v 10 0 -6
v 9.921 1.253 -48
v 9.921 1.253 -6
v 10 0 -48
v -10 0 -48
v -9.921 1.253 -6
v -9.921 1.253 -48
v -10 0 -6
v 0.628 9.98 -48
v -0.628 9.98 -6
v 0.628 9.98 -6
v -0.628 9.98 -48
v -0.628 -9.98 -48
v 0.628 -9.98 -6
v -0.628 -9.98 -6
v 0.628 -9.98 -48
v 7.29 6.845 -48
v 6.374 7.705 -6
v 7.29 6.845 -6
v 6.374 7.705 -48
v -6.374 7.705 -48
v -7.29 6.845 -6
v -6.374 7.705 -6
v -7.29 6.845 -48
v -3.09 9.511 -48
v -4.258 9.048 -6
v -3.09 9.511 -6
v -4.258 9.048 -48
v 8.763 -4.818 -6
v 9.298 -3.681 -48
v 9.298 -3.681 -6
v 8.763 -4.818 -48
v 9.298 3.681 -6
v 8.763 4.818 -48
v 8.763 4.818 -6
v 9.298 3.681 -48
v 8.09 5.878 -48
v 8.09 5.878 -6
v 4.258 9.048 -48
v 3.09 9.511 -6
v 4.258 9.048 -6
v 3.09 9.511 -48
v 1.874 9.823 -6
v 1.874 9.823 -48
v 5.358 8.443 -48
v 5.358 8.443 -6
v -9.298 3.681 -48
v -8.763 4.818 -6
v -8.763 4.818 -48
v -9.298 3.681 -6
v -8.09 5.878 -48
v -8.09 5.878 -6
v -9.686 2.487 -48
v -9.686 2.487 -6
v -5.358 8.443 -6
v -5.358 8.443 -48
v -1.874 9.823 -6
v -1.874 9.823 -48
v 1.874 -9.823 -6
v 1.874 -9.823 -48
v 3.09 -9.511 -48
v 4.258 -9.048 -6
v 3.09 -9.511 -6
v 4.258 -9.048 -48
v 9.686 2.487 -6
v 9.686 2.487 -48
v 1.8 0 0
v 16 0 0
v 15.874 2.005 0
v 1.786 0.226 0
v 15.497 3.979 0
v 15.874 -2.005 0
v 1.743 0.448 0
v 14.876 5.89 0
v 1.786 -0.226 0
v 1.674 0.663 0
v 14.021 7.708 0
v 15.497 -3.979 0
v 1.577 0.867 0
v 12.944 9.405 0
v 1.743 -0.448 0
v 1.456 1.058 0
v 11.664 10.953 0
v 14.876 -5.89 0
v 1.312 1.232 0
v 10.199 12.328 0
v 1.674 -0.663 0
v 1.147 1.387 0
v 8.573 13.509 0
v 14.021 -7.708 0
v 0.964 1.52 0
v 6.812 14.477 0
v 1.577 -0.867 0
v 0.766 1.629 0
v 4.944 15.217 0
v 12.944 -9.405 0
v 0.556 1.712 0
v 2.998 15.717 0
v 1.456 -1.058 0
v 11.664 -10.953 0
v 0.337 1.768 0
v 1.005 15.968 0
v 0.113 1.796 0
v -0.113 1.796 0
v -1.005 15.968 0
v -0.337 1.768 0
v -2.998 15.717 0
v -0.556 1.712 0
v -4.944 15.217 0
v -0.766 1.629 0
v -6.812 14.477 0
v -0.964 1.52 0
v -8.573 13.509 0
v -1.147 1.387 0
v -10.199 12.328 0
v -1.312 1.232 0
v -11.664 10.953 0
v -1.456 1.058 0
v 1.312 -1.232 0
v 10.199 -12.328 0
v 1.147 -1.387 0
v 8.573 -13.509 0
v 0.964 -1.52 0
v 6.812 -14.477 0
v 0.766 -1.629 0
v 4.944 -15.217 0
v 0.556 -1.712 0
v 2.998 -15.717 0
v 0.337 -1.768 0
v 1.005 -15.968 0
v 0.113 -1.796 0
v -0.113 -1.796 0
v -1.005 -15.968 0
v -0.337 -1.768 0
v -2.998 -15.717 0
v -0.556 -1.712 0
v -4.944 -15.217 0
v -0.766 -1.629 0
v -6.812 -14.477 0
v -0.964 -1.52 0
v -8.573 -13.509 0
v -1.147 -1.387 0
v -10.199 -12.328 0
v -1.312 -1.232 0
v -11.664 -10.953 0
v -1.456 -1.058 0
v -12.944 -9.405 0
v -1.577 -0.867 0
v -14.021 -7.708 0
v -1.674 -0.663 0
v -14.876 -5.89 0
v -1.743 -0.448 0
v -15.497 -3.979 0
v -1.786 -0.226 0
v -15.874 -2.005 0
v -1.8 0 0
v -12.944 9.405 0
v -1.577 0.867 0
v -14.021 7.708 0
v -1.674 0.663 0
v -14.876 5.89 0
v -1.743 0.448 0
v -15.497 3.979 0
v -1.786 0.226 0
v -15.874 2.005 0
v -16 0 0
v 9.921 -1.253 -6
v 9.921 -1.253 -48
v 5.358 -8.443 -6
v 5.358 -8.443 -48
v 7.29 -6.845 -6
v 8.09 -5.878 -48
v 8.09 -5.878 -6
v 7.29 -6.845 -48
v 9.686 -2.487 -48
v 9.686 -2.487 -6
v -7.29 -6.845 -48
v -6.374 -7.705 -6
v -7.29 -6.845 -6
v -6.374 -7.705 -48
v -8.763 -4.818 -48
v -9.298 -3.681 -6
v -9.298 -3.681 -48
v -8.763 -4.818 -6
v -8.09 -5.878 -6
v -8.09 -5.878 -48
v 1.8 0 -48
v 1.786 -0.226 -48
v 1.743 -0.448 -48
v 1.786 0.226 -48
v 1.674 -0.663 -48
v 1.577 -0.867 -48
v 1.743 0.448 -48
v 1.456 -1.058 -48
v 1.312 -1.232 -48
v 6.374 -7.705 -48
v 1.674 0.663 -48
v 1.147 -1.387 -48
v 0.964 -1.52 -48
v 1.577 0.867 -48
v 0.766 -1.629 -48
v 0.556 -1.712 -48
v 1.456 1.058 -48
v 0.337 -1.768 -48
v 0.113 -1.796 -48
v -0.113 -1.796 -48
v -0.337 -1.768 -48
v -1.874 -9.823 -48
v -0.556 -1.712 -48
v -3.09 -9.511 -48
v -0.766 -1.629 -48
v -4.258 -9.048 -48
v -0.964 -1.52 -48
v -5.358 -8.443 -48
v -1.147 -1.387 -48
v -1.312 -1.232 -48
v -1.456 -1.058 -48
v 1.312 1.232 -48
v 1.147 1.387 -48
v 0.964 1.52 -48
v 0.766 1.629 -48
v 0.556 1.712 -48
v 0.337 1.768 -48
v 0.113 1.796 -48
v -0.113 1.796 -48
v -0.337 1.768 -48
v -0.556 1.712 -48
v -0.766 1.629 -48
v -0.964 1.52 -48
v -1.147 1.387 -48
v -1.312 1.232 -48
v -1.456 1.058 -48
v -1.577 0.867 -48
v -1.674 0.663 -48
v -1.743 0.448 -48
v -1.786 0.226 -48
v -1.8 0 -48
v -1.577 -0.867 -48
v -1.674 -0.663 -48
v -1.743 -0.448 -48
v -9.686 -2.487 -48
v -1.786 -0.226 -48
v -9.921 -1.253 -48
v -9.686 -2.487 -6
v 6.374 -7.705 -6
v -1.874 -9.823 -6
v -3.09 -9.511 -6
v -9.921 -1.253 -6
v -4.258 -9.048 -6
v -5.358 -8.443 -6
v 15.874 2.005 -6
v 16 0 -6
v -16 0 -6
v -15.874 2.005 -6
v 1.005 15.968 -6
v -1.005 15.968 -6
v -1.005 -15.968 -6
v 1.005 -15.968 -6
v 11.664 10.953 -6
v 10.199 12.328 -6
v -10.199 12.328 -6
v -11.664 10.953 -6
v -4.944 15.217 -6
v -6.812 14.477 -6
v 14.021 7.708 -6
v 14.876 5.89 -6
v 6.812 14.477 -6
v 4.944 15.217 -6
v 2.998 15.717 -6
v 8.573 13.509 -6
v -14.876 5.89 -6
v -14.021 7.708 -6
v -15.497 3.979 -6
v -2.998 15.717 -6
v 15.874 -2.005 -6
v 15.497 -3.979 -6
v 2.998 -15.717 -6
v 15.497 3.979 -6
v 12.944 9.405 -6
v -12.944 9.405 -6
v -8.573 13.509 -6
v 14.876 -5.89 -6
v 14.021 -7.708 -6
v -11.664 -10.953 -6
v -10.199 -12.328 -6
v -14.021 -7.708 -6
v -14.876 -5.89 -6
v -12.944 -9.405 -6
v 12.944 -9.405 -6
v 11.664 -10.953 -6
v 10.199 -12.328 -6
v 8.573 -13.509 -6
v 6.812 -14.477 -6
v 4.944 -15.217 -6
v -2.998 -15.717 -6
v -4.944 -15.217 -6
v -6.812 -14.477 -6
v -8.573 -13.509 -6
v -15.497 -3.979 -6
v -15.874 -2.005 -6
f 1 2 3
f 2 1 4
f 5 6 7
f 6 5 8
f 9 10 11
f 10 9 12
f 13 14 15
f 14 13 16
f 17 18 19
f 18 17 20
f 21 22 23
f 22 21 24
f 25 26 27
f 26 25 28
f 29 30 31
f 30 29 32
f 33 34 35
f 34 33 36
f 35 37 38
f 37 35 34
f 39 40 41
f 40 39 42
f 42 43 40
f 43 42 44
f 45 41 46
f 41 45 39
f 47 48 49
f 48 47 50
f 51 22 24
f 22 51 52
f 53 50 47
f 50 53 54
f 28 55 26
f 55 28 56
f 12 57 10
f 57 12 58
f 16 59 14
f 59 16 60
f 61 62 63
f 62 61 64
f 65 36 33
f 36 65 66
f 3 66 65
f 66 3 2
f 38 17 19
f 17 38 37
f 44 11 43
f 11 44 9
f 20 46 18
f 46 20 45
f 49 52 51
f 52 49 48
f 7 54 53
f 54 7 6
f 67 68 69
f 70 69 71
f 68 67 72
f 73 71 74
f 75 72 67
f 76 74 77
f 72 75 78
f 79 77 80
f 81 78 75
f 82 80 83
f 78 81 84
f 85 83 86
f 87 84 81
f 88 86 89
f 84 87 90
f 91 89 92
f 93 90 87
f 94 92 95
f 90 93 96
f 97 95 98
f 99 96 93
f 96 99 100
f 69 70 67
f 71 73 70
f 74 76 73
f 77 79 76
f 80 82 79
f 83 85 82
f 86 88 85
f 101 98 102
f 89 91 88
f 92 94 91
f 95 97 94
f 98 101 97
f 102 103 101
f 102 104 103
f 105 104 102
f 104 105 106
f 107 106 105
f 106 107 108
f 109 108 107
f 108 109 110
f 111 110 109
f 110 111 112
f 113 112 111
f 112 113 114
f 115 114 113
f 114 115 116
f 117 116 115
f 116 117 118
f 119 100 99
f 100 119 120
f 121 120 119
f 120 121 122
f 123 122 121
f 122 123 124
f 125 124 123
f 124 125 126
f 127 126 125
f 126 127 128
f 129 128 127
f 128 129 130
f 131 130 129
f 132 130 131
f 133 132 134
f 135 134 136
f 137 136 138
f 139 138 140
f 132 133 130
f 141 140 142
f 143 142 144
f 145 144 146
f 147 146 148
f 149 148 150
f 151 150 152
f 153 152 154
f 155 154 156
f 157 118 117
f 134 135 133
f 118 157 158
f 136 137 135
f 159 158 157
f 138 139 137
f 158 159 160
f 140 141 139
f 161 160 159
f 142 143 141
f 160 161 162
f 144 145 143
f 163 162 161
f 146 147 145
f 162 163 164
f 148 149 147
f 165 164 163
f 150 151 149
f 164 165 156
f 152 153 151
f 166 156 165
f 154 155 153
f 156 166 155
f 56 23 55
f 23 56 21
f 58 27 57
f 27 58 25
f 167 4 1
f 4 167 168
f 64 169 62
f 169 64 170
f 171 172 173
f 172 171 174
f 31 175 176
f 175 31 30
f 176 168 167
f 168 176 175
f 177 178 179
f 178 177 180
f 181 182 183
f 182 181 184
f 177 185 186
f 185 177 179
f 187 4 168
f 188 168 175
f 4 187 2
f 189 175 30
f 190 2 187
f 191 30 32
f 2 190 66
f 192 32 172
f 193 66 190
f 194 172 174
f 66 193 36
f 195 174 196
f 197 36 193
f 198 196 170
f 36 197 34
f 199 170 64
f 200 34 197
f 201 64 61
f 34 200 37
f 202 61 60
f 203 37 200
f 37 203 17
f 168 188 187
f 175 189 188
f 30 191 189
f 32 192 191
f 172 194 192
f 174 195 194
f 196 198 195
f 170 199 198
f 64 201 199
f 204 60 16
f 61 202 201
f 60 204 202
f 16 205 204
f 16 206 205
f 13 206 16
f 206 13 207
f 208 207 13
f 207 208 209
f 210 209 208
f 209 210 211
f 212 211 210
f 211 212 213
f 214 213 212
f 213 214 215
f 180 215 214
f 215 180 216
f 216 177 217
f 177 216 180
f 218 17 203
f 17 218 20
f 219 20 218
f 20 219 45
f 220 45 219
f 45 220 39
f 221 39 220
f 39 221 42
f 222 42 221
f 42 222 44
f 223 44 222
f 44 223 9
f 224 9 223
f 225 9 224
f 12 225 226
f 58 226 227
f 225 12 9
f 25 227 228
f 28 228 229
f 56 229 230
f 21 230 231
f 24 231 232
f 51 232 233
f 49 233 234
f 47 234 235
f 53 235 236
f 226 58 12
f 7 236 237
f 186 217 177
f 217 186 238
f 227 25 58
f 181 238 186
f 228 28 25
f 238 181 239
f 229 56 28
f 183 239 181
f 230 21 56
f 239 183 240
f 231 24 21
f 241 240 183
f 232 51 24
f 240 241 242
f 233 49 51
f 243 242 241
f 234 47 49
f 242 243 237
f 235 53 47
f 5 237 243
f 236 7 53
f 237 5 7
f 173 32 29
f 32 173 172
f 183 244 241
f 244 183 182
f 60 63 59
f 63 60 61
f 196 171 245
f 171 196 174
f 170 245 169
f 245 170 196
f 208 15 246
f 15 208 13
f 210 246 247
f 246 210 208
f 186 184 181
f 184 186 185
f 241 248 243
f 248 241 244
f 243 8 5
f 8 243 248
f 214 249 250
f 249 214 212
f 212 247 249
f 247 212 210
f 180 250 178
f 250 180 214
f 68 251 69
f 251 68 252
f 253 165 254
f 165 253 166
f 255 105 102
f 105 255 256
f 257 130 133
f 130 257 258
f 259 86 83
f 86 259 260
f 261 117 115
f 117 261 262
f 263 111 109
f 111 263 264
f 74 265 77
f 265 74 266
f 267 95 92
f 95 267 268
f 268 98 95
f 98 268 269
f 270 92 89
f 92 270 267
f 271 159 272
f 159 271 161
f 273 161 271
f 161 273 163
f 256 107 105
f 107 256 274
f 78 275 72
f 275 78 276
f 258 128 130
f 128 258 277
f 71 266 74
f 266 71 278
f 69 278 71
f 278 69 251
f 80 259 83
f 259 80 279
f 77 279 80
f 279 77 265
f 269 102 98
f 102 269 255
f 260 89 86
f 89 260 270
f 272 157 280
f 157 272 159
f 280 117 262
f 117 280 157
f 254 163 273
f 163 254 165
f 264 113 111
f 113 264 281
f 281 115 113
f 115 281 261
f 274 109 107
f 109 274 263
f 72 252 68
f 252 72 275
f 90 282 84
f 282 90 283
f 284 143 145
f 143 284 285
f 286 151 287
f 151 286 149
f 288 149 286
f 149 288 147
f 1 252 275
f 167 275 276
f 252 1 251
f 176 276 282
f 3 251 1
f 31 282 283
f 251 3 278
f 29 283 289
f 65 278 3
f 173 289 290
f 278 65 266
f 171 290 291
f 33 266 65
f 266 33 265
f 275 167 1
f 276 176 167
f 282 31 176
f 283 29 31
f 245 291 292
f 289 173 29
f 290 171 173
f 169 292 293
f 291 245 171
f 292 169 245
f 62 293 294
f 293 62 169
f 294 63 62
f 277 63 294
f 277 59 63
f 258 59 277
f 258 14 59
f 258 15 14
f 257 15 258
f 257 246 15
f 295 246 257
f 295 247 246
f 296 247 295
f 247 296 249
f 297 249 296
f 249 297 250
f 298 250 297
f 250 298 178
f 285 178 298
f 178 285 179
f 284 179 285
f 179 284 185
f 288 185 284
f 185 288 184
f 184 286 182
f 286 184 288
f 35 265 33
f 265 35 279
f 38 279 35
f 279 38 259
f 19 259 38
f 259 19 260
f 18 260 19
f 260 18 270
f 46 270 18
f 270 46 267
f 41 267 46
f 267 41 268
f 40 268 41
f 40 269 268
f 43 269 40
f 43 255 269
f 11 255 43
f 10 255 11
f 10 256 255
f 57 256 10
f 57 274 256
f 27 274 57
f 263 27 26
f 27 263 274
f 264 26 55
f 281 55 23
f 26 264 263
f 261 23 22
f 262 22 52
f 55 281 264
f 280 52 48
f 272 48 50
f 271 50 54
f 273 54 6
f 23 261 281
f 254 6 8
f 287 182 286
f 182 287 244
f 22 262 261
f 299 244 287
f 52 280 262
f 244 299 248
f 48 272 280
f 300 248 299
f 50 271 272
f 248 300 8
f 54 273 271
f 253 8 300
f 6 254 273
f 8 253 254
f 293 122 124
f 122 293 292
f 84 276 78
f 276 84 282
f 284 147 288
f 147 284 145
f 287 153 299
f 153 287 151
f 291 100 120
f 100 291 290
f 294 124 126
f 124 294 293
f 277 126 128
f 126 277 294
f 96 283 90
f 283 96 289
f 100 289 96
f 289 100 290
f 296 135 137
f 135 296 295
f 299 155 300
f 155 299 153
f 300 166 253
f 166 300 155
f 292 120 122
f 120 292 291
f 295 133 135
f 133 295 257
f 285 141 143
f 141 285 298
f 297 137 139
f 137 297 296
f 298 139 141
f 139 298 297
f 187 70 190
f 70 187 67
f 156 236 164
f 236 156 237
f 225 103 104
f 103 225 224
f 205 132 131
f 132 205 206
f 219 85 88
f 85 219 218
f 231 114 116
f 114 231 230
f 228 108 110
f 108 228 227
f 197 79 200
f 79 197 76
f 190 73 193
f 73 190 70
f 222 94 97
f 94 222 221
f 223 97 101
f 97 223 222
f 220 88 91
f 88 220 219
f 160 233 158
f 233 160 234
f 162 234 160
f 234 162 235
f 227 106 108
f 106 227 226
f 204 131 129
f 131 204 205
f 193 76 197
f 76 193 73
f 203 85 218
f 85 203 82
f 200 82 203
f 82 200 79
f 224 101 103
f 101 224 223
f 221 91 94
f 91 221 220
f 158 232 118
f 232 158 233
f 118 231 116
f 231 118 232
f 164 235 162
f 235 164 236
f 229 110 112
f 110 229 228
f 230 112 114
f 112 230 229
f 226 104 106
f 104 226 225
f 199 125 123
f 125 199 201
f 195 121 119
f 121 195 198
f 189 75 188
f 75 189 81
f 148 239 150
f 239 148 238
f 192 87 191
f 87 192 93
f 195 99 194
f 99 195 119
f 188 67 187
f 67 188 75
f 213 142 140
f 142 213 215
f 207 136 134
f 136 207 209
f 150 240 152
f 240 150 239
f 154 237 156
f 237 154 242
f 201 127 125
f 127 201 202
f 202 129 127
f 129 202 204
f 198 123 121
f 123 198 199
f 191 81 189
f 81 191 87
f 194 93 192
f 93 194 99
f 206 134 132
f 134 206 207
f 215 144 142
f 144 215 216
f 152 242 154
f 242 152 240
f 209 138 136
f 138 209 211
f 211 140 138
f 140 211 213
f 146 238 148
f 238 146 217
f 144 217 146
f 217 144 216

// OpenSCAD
$fn = 50;


difference() {
	union() {
		translate(v = [0, 0, -48.0000000000]) {
			cylinder(h = 48, r = 10.0000000000);
		}
		translate(v = [0, 0, -6.0000000000]) {
			cylinder(h = 6, r = 16.0000000000);
		}
	}
	union() {
		#translate(v = [0, 0, -48]) {
			cylinder(h = 48, r = 1.8000000000);
		}
	}
}
